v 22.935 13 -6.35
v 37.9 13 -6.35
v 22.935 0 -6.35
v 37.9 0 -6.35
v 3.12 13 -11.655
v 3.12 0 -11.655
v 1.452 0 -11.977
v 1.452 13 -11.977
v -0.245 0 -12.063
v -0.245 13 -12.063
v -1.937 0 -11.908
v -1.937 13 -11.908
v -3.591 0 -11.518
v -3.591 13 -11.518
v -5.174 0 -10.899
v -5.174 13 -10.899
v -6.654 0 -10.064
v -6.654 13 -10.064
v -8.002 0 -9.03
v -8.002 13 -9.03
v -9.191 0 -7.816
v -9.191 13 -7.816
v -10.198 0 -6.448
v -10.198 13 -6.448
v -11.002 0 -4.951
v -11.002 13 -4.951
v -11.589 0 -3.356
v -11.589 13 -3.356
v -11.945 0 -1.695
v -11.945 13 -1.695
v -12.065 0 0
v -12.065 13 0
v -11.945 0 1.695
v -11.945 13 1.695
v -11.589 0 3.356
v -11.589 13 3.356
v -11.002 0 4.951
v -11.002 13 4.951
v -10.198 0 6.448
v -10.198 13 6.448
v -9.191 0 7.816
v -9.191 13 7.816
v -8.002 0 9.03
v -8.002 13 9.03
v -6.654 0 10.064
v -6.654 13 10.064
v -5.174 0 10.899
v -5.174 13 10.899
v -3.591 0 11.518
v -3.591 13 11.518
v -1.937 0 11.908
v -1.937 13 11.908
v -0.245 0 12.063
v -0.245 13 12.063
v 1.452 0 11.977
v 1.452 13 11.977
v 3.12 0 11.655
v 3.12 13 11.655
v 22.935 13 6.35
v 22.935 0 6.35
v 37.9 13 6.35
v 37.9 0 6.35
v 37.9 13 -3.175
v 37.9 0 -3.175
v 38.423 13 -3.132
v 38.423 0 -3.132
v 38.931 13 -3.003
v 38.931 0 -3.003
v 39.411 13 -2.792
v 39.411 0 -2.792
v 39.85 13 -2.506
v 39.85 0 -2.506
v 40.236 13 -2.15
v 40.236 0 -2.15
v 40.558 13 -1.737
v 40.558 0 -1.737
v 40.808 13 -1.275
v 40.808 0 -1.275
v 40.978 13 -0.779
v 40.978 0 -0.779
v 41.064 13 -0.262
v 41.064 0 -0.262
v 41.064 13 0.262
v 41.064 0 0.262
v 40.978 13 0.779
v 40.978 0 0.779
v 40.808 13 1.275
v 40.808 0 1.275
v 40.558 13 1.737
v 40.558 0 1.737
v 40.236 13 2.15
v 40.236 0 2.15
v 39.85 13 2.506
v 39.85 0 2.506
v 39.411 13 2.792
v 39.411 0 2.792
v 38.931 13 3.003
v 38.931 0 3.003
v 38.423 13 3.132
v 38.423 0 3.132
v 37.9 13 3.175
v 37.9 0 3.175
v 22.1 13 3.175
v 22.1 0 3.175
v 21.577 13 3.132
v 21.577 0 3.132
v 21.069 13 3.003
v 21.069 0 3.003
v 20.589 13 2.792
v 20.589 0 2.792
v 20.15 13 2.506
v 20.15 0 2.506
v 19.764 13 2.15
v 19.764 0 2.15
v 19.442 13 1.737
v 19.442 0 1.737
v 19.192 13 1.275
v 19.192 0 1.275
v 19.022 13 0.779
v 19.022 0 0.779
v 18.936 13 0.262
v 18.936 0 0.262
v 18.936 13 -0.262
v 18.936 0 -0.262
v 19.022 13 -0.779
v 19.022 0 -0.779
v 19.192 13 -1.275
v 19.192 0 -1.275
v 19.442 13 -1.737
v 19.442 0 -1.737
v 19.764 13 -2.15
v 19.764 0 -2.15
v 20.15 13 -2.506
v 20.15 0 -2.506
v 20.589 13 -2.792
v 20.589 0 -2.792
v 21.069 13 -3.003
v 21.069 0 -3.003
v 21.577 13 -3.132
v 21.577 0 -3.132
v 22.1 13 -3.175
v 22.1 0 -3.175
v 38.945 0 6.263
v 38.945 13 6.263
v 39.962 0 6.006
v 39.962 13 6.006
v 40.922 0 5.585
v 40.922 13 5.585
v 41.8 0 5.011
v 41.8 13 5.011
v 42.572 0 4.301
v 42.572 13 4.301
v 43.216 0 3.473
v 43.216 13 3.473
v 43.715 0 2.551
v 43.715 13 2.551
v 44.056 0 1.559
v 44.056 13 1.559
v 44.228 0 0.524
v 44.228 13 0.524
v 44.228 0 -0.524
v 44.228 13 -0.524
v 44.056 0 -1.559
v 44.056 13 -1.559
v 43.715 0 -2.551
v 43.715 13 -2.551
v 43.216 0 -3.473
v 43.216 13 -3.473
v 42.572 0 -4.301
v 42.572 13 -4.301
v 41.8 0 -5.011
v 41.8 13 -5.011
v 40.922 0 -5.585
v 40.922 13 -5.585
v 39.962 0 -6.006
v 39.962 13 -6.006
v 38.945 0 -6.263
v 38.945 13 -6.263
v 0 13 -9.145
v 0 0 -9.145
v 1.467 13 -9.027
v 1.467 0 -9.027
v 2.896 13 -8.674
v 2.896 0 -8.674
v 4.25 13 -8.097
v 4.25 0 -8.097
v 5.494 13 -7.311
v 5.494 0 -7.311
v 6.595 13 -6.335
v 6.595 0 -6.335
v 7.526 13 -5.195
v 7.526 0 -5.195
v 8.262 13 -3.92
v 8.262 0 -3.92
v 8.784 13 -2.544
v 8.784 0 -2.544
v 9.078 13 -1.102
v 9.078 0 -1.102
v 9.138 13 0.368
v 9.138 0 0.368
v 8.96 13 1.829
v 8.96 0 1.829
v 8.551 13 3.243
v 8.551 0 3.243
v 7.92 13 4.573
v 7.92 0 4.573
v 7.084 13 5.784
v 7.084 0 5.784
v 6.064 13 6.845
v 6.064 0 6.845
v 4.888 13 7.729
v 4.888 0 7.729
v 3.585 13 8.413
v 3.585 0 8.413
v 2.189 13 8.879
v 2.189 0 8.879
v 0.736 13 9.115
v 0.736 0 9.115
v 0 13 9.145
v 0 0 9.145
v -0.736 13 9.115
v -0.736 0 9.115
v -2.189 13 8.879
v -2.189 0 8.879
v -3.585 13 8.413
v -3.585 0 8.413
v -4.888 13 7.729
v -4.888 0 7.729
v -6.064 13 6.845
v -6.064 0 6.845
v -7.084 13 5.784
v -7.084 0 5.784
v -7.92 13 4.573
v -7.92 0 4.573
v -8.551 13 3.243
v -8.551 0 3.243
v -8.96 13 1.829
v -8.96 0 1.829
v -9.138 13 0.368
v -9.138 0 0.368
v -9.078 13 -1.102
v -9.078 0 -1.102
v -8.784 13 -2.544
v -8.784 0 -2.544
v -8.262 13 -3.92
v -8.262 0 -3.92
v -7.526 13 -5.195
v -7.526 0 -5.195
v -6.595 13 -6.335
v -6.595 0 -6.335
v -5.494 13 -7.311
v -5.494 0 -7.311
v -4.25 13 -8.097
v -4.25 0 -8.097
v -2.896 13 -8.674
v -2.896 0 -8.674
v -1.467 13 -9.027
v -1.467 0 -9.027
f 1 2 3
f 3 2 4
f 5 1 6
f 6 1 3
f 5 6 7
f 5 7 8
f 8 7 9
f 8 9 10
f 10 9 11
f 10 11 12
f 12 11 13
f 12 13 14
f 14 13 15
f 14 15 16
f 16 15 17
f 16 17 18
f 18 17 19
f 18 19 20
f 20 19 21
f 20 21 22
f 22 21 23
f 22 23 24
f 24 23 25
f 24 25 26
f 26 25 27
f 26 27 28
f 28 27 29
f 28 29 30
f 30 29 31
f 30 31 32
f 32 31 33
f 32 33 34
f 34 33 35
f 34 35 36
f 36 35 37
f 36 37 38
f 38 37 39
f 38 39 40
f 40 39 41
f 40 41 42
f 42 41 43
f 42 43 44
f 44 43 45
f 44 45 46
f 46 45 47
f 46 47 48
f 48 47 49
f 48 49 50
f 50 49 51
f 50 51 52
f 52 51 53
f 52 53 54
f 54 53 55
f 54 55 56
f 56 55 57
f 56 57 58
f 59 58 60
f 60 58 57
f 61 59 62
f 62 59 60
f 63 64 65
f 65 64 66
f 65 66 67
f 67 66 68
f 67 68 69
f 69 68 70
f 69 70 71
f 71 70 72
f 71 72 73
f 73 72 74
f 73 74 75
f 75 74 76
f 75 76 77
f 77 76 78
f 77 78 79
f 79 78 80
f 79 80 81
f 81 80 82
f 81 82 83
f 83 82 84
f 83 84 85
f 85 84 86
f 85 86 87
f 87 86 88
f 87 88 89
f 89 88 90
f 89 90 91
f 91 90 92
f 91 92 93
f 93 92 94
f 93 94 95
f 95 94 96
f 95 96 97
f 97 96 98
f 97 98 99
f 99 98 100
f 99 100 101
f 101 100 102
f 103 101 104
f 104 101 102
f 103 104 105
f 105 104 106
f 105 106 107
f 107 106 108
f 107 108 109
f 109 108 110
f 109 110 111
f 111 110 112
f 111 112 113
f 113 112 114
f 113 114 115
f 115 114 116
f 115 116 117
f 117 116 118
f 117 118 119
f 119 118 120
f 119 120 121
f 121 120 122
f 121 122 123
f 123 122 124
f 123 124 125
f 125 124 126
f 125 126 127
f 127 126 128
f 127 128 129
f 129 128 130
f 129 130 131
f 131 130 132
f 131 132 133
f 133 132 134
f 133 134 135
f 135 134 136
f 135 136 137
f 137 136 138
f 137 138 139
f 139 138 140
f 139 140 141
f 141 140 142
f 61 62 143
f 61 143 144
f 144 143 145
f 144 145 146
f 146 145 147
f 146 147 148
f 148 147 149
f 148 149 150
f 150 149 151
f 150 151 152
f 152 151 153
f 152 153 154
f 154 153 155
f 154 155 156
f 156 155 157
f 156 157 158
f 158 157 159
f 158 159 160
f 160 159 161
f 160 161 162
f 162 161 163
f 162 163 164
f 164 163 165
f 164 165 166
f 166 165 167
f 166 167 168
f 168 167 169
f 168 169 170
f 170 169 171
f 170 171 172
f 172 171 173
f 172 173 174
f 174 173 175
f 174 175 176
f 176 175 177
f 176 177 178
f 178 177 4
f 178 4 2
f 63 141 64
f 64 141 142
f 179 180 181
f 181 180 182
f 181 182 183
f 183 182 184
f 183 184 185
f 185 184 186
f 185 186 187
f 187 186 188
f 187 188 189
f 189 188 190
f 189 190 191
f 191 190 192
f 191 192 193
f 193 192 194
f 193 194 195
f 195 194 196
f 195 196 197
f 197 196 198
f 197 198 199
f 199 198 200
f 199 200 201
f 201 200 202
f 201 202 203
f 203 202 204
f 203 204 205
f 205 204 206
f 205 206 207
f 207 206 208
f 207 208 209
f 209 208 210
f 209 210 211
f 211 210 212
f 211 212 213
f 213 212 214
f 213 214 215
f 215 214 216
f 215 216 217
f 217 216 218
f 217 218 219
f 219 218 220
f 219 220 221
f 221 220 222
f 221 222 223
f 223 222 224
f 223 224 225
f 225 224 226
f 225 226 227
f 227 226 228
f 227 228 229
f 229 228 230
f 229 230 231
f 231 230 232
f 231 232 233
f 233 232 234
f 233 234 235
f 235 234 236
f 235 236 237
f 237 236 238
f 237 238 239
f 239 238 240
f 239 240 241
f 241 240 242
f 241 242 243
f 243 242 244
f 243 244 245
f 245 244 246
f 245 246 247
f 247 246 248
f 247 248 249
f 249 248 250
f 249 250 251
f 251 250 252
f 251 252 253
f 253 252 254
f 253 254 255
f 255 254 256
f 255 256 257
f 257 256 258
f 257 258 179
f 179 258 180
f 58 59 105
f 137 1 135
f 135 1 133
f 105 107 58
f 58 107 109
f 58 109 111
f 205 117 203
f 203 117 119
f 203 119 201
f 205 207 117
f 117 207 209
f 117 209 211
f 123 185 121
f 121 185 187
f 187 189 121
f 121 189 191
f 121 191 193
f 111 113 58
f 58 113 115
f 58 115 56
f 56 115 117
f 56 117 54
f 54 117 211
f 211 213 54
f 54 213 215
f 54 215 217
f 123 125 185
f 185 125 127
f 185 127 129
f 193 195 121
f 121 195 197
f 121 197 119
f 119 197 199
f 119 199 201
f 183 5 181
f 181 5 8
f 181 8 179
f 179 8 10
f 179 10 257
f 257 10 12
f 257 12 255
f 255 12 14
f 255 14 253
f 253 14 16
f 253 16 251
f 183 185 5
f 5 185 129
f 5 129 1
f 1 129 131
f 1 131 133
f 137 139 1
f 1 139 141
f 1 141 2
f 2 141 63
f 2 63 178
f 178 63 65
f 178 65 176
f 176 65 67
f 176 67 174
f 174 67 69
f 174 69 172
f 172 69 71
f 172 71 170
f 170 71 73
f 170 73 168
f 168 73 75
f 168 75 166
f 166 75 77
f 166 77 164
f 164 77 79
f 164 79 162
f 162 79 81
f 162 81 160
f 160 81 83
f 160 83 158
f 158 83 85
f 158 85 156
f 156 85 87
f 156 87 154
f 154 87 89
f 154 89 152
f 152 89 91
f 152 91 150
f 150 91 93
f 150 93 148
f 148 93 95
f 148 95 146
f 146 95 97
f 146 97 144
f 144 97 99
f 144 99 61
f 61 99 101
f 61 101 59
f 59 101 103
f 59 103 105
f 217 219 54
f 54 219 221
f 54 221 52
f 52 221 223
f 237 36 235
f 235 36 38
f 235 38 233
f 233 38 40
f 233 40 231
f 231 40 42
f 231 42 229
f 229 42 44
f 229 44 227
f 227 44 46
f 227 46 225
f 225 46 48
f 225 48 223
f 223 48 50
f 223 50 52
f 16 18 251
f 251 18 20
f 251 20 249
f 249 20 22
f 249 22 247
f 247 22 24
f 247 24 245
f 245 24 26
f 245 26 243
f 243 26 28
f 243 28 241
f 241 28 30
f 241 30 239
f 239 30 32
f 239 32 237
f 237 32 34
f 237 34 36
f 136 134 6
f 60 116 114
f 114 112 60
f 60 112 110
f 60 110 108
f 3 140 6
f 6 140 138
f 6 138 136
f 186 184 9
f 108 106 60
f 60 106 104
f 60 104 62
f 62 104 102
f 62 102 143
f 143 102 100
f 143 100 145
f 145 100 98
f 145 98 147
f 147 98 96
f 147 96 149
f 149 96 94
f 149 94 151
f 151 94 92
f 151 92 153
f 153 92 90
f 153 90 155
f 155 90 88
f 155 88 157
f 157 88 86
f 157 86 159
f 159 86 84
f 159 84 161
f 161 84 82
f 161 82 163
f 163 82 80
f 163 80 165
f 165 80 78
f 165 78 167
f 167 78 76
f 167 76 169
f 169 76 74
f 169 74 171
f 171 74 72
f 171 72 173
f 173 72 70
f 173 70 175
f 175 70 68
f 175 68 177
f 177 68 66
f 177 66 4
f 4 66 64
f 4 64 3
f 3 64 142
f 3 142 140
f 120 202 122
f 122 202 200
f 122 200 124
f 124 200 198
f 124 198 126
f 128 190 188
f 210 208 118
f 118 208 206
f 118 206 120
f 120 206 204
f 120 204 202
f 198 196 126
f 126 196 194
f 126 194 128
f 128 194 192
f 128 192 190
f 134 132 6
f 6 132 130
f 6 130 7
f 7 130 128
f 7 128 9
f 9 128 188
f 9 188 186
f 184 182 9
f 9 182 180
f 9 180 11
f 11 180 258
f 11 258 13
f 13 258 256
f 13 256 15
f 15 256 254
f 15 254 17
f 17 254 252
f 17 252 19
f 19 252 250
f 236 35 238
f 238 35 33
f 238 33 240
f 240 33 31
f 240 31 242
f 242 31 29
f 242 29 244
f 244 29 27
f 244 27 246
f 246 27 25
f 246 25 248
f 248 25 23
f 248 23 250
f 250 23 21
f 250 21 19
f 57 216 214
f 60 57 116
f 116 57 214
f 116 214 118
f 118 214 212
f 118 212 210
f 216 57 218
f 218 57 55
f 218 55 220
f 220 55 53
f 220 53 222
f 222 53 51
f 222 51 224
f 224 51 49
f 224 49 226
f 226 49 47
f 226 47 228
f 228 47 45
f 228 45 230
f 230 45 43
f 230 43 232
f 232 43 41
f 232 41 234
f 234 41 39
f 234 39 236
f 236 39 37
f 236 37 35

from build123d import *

# Parameters (mm, degrees)
SKETCH1_R           = 9.145
BOSS_EXTRUDE3_DEPTH = 13


with BuildPart() as part:
    # Sketch1 → Boss-Extrude3 (new body)
    with BuildSketch(Plane(origin=(0, 0, 0), x_dir=(1, 0, 0), z_dir=(0, 1, 0))):
        with BuildLine():
            Line((22.935251834, 6.35), (3.119976244, 11.654611672))
            ThreePointArc((3.119976244, 11.654611672), (-12.065, 0), (3.119976244, -11.654611672))
            Line((3.119976244, -11.654611672), (22.935251834, -6.35))
            Line((22.935251834, -6.35), (37.9, -6.35))
            ThreePointArc((37.9, -6.35), (44.25, 0), (37.9, 6.35))
            Line((37.9, 6.35), (22.935251834, 6.35))
        make_face()
        with Locations(Location((0, 0, 0), (0, 0, 90))):
            Circle(SKETCH1_R, mode=Mode.SUBTRACT)
        with BuildLine():
            Line((37.9, -3.175), (22.1, -3.175))
            ThreePointArc((22.1, -3.175), (18.925, 0), (22.1, 3.175))
            Line((22.1, 3.175), (37.9, 3.175))
            ThreePointArc((37.9, 3.175), (41.075, 0), (37.9, -3.175))
        make_face(mode=Mode.SUBTRACT)
    extrude(amount=BOSS_EXTRUDE3_DEPTH)


solid = part.part
